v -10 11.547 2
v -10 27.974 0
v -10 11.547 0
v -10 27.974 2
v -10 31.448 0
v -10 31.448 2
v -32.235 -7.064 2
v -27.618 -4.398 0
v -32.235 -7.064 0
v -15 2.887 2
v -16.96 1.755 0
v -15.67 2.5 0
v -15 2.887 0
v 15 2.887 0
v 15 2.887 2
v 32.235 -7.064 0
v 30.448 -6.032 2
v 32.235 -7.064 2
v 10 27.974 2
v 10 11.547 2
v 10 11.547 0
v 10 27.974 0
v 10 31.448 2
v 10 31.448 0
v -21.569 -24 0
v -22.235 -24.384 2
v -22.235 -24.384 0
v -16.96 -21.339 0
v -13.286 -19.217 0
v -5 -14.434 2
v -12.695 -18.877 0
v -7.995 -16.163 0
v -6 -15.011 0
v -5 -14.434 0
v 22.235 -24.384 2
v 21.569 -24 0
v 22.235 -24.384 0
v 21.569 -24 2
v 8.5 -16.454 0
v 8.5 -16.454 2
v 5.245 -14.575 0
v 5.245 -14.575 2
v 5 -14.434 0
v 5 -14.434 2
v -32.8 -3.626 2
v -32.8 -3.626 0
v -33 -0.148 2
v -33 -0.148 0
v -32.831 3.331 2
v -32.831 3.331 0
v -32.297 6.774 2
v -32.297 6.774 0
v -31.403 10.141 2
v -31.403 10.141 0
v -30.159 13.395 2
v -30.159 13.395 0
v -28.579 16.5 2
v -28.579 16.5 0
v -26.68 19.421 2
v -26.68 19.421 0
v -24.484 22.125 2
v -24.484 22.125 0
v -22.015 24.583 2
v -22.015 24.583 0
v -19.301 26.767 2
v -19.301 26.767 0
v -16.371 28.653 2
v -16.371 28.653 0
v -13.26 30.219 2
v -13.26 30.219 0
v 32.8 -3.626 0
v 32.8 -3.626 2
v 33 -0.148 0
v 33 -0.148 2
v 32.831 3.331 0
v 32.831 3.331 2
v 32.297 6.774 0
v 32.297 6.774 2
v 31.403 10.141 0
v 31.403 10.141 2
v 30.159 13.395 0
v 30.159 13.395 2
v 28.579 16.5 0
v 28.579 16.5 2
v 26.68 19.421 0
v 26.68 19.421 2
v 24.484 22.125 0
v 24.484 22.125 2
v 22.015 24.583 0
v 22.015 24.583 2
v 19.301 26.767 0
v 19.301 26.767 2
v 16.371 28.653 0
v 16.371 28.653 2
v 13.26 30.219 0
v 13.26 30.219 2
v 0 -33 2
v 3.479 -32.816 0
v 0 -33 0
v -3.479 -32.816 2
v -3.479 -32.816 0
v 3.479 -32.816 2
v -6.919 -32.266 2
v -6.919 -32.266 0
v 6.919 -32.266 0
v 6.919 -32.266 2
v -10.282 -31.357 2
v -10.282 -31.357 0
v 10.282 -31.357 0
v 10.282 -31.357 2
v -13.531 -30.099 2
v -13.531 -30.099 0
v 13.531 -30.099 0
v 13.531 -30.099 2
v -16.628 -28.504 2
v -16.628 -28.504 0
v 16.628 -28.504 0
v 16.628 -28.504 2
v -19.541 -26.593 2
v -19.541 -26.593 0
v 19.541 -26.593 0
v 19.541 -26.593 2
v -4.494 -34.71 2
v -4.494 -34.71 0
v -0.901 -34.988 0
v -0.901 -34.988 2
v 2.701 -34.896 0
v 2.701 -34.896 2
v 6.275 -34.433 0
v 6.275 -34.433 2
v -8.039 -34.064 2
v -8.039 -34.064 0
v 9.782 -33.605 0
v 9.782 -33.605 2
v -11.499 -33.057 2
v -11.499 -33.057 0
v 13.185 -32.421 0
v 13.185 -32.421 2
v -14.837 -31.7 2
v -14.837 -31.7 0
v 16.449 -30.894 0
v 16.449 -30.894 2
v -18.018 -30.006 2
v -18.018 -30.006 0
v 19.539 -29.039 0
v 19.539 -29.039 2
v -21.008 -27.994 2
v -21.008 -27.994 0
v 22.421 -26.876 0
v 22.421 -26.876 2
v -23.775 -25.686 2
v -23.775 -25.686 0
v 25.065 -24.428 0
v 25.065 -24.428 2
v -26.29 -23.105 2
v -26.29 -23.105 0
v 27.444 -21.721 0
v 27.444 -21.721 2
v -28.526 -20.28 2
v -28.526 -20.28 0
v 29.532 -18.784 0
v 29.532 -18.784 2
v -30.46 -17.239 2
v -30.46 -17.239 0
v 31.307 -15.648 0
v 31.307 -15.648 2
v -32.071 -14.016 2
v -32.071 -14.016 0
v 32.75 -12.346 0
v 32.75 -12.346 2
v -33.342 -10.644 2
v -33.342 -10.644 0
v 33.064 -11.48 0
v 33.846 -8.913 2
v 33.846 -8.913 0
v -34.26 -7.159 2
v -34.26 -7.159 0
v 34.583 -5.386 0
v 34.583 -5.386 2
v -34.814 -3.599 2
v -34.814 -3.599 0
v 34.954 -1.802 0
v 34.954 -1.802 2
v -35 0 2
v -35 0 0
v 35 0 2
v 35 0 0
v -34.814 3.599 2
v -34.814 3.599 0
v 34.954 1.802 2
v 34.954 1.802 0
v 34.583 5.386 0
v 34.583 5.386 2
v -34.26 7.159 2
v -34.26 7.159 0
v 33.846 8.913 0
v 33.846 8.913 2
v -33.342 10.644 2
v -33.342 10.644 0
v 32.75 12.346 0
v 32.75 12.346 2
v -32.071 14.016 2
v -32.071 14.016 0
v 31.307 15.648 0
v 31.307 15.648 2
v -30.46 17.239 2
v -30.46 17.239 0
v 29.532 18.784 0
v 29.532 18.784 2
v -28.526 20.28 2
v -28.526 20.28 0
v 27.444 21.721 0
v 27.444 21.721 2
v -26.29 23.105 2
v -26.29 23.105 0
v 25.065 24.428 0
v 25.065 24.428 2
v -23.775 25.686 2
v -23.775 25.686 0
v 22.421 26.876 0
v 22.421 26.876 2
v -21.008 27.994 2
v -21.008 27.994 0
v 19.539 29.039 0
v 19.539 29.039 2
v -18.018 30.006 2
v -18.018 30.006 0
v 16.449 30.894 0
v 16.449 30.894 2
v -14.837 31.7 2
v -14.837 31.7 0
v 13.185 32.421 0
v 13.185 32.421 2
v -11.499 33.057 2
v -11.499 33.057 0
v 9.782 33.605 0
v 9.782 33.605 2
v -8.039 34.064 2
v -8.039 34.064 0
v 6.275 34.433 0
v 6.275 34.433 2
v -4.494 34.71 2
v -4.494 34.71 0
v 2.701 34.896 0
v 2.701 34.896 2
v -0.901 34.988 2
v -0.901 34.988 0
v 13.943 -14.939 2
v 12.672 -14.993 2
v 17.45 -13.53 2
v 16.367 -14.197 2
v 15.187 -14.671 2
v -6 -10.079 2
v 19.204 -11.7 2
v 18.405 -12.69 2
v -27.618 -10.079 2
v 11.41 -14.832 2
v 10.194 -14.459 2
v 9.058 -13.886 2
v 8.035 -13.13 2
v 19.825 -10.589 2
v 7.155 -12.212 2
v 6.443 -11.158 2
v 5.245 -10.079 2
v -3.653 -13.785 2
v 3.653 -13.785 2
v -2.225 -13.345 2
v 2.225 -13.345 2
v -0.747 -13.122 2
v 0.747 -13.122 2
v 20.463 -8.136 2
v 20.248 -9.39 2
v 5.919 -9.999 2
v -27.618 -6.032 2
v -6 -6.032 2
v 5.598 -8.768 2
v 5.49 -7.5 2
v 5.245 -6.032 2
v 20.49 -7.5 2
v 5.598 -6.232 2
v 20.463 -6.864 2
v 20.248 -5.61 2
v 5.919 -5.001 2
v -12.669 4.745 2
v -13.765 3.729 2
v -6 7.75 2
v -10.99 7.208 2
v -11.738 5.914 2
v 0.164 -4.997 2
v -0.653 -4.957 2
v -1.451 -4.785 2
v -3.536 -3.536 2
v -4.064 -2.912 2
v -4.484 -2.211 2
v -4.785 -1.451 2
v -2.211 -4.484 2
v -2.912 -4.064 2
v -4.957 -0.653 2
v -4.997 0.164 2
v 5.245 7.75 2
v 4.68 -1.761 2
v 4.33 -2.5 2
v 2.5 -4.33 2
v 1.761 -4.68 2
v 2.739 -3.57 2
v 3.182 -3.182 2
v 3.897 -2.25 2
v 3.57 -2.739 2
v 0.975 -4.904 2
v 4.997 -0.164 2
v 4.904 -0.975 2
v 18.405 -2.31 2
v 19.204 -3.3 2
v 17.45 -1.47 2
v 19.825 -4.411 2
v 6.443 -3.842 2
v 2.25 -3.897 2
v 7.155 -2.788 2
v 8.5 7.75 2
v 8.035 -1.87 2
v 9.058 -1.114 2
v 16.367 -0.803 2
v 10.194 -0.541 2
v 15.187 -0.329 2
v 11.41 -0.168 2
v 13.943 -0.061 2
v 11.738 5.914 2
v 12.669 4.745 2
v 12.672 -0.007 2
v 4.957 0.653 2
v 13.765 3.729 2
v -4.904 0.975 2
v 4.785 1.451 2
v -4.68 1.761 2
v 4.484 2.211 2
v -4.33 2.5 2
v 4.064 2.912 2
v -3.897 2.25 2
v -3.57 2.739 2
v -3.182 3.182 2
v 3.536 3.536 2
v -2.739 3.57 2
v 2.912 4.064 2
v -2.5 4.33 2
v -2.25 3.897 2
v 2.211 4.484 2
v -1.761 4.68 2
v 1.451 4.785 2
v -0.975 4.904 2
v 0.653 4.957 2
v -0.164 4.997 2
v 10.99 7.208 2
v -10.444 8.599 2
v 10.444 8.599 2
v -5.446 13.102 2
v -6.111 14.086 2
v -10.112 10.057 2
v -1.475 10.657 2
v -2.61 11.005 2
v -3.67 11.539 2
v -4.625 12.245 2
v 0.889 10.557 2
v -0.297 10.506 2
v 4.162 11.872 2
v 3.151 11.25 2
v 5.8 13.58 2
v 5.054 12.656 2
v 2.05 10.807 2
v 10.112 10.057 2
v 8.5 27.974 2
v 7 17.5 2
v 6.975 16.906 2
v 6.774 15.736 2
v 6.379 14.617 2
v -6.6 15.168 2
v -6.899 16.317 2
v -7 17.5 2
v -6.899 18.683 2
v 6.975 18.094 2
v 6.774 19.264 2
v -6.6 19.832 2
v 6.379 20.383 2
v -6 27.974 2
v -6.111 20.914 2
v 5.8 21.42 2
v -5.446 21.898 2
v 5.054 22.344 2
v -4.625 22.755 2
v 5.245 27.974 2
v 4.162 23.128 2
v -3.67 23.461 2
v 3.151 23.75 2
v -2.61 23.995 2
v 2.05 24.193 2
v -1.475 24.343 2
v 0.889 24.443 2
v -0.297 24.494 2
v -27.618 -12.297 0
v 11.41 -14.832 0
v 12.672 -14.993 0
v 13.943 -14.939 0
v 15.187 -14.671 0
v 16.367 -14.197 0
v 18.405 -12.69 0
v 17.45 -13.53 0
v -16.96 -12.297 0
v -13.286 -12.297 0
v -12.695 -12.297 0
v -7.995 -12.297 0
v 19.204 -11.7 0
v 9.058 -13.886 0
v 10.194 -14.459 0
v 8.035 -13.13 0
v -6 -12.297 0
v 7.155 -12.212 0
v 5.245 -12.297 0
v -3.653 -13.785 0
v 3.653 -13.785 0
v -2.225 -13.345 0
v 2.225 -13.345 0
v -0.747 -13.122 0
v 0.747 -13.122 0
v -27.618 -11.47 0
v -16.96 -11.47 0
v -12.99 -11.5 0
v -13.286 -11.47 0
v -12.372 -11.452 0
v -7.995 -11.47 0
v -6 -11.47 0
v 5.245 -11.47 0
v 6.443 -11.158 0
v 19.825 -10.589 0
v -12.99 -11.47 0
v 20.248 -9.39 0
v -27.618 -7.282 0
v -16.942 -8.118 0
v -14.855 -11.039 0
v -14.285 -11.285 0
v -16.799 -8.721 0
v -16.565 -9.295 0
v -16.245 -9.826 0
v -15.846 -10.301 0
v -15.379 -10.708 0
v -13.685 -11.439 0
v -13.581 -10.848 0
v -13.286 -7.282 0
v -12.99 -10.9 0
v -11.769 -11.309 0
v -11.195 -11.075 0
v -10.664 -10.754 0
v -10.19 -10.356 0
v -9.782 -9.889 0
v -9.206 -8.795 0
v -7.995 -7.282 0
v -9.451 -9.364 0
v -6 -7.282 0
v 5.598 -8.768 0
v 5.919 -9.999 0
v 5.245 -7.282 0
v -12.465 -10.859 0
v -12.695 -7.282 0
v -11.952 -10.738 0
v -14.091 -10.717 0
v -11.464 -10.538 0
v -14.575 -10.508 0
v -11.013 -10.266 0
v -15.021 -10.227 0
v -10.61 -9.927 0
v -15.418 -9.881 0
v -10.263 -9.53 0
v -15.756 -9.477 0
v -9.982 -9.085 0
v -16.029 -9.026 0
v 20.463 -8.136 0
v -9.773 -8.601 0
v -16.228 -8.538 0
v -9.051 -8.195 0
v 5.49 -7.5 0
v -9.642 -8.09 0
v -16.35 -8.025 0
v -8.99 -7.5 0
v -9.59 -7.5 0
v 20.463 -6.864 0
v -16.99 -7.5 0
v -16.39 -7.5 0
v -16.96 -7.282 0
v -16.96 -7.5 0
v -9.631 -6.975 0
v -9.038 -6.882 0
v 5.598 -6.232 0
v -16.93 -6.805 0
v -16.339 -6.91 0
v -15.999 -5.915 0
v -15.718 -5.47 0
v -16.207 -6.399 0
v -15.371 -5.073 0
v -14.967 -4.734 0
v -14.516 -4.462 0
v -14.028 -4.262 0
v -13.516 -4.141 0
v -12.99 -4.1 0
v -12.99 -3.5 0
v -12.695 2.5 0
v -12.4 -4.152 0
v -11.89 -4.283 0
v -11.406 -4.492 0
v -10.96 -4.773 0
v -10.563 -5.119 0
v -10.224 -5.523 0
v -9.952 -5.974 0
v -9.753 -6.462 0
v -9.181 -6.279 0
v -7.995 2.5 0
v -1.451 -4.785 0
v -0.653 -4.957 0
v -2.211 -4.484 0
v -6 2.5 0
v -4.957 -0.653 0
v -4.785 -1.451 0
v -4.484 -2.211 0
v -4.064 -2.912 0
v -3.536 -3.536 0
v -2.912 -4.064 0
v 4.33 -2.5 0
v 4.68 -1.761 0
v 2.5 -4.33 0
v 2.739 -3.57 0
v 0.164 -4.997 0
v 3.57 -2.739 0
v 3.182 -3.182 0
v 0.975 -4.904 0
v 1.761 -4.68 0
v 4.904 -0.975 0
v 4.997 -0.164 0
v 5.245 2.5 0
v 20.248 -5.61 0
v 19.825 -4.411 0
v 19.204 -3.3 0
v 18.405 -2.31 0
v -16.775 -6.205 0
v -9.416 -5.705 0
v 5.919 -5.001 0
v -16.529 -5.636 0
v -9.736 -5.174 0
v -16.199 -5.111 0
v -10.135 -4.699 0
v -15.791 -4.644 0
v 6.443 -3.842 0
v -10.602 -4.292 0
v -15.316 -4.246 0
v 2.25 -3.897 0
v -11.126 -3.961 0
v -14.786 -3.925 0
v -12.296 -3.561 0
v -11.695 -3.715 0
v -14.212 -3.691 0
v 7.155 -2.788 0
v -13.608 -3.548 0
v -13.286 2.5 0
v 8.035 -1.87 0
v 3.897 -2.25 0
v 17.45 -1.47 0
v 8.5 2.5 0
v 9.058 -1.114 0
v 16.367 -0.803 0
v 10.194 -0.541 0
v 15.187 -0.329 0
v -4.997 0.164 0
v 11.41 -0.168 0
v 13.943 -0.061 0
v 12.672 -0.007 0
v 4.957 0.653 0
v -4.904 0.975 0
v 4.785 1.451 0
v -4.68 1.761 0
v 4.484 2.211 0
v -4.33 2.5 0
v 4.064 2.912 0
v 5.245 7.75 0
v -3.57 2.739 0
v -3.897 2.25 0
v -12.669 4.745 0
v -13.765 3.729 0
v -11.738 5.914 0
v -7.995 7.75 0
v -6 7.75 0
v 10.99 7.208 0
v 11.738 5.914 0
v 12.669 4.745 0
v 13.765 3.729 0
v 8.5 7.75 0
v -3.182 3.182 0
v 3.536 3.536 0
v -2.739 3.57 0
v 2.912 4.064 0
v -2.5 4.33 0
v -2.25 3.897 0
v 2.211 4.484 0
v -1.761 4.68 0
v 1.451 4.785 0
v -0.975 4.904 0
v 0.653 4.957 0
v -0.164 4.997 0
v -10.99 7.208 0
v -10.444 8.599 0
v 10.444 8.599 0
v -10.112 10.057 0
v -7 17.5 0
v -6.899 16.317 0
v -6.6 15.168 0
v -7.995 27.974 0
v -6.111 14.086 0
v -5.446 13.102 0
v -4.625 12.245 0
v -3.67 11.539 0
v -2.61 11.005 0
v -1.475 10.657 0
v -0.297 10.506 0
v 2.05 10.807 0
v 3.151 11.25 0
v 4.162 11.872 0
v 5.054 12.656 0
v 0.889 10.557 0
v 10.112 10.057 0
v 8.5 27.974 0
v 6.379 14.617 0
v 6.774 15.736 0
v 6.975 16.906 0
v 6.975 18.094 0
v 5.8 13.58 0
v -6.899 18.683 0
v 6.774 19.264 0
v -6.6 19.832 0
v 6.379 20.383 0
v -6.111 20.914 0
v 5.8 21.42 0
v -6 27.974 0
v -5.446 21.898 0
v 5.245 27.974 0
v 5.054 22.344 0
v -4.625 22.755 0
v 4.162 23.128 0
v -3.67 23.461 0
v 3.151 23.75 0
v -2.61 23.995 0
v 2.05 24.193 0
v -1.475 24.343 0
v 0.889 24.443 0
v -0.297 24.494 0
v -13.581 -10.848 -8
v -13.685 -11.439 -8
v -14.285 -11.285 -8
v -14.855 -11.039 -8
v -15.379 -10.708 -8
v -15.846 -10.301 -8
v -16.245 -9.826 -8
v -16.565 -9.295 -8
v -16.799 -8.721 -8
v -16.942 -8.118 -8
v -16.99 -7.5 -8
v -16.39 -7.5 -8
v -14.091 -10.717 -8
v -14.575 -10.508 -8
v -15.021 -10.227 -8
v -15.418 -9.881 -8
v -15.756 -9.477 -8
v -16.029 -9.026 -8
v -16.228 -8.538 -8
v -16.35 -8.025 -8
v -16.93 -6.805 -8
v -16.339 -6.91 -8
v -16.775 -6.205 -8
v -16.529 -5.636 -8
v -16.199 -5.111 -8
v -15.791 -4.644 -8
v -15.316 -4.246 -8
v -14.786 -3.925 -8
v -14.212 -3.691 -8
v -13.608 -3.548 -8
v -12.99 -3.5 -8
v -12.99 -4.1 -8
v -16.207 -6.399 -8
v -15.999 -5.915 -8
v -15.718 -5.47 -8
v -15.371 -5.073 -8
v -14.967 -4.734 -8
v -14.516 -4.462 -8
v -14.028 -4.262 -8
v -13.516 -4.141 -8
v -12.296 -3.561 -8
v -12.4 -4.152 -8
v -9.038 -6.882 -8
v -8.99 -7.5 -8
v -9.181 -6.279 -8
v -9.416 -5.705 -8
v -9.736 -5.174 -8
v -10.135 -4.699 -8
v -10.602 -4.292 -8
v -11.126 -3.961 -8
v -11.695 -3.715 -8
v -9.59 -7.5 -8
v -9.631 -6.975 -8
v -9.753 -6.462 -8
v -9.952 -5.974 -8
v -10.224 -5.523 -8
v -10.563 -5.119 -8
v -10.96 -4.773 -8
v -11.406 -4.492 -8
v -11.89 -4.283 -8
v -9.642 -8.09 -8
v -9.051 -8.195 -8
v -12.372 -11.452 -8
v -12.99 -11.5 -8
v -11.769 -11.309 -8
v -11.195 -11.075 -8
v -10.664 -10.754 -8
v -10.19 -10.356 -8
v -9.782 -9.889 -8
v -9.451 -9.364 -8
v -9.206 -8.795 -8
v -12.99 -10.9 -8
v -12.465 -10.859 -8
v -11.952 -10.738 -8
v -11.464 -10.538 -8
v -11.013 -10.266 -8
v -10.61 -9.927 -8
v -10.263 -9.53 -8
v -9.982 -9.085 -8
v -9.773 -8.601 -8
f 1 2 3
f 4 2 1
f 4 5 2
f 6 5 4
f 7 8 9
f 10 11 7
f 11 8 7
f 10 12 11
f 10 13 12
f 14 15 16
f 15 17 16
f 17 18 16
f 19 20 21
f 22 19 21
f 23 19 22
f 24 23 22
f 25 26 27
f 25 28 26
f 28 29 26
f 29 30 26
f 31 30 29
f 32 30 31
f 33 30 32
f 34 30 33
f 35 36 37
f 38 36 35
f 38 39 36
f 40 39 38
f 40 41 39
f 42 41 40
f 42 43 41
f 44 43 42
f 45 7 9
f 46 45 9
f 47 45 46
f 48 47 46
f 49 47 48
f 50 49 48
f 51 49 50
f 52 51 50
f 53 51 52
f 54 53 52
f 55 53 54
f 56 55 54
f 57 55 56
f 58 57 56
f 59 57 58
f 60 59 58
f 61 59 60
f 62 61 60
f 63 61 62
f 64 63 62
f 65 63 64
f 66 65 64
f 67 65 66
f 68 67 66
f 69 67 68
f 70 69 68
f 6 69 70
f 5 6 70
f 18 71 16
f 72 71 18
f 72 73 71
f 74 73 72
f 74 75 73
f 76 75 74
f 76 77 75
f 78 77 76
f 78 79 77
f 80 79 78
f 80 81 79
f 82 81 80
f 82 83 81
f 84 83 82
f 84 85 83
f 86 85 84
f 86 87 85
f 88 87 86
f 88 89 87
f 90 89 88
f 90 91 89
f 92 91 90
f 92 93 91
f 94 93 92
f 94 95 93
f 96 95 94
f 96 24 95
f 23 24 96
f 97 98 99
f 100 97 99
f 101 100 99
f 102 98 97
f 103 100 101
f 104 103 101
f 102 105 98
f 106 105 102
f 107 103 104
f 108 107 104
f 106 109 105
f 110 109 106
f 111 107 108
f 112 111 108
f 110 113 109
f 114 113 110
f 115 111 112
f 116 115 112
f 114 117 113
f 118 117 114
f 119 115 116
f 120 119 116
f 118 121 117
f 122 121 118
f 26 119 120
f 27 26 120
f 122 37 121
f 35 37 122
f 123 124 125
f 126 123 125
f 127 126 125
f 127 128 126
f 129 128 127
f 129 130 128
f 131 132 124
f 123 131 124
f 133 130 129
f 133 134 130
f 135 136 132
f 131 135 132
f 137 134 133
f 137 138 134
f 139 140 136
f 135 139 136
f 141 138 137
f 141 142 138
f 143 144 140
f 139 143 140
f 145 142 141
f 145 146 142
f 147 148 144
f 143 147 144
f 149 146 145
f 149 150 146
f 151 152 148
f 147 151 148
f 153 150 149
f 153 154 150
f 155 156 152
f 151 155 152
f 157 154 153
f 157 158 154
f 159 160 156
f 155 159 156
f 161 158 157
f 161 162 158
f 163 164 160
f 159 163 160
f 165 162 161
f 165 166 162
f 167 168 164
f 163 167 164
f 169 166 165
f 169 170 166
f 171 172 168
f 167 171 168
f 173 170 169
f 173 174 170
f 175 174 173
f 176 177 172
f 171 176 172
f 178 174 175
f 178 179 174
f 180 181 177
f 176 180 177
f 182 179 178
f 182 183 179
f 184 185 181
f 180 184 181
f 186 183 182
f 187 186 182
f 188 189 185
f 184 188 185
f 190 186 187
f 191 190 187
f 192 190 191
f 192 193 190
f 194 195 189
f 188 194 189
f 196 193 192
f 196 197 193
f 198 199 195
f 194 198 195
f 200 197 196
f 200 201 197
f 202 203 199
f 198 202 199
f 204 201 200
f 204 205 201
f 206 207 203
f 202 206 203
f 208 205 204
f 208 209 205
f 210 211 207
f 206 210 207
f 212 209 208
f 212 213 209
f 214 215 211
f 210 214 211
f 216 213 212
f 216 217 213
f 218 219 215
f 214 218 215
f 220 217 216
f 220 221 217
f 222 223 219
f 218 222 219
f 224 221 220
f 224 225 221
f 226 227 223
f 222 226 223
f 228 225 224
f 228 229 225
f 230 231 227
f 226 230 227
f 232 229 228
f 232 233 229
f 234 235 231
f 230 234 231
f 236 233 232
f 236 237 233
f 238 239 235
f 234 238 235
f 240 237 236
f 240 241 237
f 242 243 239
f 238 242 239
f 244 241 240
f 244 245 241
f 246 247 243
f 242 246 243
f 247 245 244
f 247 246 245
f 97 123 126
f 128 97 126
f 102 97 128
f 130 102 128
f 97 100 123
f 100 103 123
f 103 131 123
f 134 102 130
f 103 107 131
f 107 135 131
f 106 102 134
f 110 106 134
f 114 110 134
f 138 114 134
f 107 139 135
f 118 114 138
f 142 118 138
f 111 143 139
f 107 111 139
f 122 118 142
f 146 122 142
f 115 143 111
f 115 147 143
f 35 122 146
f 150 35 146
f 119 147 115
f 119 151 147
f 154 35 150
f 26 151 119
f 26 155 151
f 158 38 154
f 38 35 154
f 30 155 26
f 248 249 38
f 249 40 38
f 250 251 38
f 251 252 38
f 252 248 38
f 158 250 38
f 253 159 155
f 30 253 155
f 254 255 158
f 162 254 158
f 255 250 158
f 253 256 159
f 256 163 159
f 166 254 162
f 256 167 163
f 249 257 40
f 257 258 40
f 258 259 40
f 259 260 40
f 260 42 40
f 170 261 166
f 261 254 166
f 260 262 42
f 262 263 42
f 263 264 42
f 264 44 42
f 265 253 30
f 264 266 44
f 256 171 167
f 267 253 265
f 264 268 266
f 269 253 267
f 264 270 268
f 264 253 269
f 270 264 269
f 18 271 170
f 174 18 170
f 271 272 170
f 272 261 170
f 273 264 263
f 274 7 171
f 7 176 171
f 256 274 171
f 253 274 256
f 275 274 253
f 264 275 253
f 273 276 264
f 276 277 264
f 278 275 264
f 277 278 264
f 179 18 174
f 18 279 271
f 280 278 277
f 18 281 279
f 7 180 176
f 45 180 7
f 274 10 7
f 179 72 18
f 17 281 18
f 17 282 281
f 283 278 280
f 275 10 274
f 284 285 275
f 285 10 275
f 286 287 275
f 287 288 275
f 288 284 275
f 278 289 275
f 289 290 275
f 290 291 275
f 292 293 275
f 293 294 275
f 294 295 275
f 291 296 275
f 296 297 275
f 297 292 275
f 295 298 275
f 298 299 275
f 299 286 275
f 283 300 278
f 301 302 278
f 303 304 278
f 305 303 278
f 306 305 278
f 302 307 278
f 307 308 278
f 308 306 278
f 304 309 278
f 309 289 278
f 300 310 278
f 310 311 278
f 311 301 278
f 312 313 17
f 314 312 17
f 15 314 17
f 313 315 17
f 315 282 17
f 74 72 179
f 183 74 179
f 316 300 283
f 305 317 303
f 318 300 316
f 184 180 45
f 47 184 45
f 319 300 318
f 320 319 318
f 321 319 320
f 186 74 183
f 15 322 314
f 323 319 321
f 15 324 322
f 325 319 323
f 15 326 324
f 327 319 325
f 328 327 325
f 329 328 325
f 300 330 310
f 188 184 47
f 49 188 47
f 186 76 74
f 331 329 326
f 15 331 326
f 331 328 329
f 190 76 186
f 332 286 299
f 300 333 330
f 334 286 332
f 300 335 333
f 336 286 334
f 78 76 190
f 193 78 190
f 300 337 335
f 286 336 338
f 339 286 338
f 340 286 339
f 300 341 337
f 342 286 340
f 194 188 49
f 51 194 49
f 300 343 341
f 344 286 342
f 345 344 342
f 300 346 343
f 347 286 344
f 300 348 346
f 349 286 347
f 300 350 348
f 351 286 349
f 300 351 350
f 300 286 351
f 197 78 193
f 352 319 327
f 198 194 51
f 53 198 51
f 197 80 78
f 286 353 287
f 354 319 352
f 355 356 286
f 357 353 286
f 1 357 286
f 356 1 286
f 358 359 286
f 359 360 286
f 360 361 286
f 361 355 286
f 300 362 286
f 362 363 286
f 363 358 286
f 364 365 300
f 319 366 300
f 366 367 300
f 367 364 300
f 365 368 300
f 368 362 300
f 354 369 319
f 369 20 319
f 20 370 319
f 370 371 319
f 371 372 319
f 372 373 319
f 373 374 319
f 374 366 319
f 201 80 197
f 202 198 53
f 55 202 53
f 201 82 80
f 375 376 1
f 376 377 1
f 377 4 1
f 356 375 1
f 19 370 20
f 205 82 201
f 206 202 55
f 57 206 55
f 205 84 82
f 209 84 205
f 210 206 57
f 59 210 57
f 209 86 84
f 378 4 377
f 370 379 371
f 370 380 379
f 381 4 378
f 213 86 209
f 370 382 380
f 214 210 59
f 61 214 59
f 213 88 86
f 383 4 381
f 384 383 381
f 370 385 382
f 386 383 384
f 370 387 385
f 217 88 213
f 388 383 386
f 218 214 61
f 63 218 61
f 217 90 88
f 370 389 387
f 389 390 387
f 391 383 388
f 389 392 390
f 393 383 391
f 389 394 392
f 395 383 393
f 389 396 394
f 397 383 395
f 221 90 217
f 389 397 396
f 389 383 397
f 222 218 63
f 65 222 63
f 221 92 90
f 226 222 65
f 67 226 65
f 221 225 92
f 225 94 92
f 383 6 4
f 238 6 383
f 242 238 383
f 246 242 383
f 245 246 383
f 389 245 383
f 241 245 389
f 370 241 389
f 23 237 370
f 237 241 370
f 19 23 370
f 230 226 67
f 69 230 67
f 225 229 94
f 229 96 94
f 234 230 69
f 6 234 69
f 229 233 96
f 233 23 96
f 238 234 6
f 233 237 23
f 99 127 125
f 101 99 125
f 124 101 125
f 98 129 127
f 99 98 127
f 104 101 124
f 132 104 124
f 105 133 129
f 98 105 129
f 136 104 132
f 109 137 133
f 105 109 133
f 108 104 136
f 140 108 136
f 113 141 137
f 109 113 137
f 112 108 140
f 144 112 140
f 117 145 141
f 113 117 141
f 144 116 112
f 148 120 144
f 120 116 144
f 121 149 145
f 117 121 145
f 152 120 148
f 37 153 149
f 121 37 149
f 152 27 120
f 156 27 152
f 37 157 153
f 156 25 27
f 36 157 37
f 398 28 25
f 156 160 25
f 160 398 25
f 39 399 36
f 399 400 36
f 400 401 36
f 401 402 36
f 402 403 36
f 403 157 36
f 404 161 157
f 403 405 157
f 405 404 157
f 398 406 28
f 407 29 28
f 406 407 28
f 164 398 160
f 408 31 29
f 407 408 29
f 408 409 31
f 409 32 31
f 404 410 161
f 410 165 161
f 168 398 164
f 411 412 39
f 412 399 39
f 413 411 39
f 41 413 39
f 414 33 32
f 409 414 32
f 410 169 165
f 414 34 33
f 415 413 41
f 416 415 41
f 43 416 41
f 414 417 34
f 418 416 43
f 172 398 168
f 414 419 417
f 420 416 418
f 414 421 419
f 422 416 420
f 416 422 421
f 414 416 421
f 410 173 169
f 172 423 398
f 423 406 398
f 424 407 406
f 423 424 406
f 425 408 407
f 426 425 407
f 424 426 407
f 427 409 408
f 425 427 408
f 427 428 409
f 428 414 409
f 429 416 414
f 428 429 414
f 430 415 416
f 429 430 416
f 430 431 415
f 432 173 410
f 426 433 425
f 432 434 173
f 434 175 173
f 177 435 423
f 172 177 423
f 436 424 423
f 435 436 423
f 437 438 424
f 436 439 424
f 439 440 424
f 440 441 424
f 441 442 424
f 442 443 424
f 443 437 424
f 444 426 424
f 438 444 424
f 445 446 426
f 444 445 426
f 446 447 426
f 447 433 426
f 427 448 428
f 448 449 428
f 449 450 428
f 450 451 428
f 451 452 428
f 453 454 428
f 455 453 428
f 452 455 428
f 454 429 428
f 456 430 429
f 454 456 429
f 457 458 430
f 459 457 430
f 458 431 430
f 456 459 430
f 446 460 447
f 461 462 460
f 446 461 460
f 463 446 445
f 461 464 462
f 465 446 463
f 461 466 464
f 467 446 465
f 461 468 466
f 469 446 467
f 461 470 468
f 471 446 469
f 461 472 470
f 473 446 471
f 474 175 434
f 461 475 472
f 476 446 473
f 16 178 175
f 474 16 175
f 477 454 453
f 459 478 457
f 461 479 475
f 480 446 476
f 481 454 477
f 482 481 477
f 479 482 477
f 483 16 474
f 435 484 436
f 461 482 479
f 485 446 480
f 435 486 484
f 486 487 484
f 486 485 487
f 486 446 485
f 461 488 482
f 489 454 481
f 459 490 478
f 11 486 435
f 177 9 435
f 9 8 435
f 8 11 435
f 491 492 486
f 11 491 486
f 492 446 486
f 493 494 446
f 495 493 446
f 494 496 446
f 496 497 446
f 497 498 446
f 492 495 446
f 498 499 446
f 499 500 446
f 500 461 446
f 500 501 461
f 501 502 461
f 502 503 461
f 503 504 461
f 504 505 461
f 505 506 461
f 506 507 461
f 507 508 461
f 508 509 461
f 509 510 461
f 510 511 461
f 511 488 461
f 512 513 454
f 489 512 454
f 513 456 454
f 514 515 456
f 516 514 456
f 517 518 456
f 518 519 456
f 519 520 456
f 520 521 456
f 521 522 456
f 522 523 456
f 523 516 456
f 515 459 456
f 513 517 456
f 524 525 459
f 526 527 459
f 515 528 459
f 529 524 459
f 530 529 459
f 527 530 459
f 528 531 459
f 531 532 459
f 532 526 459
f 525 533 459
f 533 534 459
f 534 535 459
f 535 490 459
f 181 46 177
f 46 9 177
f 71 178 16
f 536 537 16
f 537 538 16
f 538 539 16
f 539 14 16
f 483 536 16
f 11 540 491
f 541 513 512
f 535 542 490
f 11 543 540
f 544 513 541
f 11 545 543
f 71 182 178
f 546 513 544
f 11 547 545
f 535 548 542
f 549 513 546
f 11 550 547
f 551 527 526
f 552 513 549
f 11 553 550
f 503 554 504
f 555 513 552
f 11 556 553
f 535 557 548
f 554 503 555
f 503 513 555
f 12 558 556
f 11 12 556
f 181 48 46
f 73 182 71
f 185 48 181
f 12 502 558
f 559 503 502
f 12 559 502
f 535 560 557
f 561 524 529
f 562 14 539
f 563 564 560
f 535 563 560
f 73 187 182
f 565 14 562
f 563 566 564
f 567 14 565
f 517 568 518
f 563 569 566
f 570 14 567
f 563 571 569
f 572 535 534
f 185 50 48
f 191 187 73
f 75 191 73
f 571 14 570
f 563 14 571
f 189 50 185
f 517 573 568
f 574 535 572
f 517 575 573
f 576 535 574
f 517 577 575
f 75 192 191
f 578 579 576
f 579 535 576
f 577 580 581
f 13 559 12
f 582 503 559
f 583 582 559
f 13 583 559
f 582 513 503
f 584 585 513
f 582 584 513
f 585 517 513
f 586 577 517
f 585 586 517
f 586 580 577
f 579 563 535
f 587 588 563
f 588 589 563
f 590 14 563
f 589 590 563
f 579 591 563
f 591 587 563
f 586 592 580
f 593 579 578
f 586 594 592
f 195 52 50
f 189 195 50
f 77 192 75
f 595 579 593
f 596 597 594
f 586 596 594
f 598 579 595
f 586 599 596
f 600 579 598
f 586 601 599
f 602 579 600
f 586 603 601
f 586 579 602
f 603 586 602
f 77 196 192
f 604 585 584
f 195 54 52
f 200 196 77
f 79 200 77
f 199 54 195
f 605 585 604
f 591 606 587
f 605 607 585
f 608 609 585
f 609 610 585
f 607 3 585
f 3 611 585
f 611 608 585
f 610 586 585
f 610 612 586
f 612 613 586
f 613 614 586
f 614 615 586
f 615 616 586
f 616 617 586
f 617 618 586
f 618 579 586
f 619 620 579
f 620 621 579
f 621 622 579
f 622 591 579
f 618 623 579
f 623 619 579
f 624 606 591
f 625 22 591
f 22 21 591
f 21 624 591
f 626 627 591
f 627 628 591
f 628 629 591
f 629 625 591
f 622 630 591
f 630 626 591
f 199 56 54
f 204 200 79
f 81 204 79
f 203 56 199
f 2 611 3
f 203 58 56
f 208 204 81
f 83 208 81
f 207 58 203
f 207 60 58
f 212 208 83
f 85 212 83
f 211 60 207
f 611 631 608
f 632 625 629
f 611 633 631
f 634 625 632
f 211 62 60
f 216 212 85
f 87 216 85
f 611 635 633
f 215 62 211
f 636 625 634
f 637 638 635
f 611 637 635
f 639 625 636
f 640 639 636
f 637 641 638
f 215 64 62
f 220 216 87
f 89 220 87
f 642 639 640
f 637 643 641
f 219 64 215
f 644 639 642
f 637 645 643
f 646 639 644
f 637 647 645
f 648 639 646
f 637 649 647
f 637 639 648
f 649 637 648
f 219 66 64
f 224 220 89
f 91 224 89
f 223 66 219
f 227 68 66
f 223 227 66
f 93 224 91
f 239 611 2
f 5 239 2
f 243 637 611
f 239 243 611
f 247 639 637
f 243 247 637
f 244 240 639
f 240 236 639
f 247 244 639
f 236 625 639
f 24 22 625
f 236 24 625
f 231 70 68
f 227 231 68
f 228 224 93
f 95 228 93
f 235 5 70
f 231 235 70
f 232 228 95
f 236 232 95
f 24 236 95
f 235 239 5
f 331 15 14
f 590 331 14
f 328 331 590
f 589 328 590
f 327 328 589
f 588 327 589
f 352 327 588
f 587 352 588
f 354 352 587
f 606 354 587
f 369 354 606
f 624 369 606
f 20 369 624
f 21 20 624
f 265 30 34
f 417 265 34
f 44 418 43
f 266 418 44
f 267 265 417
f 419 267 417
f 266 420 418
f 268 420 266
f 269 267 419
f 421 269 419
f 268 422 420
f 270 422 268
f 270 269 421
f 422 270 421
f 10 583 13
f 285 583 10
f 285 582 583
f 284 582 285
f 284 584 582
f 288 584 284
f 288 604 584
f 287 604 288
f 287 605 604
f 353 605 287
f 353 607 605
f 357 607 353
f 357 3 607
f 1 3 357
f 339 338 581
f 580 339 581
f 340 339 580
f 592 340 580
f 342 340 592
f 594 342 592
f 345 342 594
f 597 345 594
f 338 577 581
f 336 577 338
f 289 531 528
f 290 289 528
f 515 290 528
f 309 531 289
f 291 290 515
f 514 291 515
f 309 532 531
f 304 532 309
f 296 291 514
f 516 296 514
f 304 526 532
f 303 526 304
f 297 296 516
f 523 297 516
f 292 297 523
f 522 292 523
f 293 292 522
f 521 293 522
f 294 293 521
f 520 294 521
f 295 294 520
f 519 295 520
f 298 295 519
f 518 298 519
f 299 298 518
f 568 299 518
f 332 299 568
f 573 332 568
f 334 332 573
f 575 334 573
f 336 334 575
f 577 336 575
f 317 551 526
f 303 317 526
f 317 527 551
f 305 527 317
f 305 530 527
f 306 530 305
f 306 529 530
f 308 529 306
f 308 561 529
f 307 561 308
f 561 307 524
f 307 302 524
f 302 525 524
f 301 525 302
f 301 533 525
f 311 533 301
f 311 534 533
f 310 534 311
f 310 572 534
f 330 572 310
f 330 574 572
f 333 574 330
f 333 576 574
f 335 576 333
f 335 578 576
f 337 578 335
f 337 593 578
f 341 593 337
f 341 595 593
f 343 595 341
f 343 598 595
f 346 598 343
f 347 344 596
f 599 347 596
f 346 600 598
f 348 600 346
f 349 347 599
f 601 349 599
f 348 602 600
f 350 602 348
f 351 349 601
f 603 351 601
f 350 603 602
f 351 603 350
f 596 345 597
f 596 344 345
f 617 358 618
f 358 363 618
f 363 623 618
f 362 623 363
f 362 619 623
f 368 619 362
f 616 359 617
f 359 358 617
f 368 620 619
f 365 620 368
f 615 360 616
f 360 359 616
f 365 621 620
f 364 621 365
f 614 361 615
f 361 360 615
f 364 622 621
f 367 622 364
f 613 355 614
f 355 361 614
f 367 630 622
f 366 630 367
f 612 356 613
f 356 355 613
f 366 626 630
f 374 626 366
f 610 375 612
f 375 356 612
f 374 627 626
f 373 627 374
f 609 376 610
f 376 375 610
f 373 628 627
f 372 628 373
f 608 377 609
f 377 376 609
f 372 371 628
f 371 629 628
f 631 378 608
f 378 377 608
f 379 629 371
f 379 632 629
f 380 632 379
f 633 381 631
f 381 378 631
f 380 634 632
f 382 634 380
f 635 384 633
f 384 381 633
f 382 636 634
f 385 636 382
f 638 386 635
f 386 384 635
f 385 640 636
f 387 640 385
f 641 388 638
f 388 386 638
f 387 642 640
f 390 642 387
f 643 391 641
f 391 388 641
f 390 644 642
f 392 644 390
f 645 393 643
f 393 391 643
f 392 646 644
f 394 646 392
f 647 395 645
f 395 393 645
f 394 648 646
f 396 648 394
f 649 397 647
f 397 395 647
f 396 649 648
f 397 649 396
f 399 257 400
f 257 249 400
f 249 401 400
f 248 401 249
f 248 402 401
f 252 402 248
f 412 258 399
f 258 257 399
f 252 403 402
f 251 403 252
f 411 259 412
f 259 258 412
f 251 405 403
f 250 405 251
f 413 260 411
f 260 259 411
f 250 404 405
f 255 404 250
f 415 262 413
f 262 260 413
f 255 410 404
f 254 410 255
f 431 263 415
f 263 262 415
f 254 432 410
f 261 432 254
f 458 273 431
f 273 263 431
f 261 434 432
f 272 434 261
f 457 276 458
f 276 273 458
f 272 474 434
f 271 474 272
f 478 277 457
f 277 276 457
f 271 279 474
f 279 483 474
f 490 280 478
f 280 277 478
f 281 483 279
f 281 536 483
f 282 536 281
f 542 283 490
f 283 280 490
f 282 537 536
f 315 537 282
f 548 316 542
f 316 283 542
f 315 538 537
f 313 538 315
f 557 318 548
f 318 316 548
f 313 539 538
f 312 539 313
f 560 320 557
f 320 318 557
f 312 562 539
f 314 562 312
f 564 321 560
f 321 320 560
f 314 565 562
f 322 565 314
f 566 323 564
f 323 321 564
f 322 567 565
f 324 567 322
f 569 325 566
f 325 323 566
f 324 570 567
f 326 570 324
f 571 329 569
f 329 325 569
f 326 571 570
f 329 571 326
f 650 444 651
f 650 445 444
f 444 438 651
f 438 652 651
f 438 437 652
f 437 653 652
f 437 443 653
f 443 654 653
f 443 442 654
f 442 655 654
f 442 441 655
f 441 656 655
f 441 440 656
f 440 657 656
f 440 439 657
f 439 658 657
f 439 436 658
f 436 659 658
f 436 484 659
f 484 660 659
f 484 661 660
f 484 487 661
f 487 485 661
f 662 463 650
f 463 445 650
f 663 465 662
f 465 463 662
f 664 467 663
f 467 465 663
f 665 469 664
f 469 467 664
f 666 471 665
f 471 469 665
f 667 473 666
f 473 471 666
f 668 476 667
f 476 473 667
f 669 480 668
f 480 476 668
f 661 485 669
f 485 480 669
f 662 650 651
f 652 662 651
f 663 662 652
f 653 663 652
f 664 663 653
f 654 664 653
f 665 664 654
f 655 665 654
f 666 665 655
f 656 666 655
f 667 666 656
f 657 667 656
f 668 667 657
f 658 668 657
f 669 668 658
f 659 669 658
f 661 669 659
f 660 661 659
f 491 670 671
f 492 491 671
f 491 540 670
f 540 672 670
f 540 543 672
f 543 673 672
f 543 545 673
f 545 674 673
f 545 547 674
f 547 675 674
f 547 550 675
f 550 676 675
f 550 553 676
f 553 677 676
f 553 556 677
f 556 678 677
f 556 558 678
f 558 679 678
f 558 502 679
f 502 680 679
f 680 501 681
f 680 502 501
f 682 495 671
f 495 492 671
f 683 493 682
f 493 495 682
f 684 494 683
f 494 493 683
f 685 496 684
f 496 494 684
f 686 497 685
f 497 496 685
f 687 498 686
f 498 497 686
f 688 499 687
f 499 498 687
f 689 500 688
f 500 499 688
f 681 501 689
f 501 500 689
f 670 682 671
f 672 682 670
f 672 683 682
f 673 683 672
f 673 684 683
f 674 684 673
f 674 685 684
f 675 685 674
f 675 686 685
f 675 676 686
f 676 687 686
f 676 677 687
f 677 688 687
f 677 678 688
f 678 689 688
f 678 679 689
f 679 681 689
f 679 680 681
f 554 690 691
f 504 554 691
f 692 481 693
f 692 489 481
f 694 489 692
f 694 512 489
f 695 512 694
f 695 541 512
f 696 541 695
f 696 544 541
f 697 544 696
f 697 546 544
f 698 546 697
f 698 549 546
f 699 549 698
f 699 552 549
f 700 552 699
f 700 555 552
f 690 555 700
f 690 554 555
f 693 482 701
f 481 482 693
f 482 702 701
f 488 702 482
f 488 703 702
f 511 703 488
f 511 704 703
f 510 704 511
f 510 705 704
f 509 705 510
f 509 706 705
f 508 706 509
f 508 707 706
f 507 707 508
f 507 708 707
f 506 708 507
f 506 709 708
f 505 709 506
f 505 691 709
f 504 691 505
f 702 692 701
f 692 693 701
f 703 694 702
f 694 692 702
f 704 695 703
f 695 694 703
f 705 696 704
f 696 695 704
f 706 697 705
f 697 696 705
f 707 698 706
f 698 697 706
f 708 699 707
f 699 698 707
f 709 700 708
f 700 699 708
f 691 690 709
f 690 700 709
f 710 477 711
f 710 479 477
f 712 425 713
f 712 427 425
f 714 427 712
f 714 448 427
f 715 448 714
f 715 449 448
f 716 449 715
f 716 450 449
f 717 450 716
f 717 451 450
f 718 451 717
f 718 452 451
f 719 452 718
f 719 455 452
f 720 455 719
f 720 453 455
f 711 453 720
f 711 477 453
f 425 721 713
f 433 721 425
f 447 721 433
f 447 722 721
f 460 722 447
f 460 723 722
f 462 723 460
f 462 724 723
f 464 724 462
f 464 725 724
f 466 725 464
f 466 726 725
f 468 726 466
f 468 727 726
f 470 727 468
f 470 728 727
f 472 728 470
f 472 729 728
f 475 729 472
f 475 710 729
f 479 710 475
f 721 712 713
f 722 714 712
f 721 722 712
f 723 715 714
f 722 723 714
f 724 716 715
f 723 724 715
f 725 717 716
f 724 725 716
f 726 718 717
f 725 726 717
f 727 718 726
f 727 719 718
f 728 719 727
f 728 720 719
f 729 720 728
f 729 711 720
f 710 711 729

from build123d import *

# Parameters (mm, degrees)
SKETCH1_R           = 35
BOSS_EXTRUDE1_DEPTH = 2
FILLET1_R           = 10
CUT_EXTRUDE2_REACH  = 51.538
SKETCH2_R           = 4.5
CUT_EXTRUDE3_REACH  = 51.538
SKETCH3_R           = 7.5
SKETCH3_R_2         = 7
BOSS_EXTRUDE2_DEPTH = 8


with BuildPart() as part:
    # Sketch1 → Boss-Extrude1 (new body)
    with BuildSketch(Plane.XY):
        Circle(SKETCH1_R)
        with BuildLine():
            Line((-10, 31.448370387), (-10, 5.773502692))
            Line((-10, 5.773502692), (-32.235087663, -7.063931156))
            ThreePointArc((-32.235087663, -7.063931156), (-28.578838325, 16.5), (-10, 31.448370387))
        make_face(mode=Mode.SUBTRACT)
        with BuildLine():
            Line((-22.235087663, -24.384439231), (0, -11.547005384))
            Line((0, -11.547005384), (22.235087663, -24.384439231))
            ThreePointArc((22.235087663, -24.384439231), (0, -33), (-22.235087663, -24.384439231))
        make_face(mode=Mode.SUBTRACT)
        with BuildLine():
            Line((32.235087663, -7.063931156), (10, 5.773502692))
            Line((10, 5.773502692), (10, 31.448370387))
            ThreePointArc((10, 31.448370387), (28.578838325, 16.5), (32.235087663, -7.063931156))
        make_face(mode=Mode.SUBTRACT)
    extrude(amount=BOSS_EXTRUDE1_DEPTH)

    # Fillet1
    fillet1_edges = [part.edges().sort_by_distance(p)[0] for p in [
        (-10, 5.773502692, 1),
        (10, 5.773502692, 1),
        (0, -11.547005384, 1),
    ]]
    fillet(fillet1_edges, radius=FILLET1_R)

    # Sketch2 → Cut-Extrude2 (cut, up to next)
    with BuildSketch(Plane(origin=(0, 0, 0), x_dir=(-1, 0, 0), z_dir=(0, 0, -1)), mode=Mode.PRIVATE) as cut_extrude2_sk1:
        Circle(SKETCH2_R)
    cut_extrude2_tool1 = extrude(cut_extrude2_sk1.sketch, amount=-CUT_EXTRUDE2_REACH, mode=Mode.PRIVATE) & part.part
    # Sketch2 → Cut-Extrude2 (cut, up to next)
    with BuildSketch(Plane(origin=(0, 0, 0), x_dir=(-1, 0, 0), z_dir=(0, 0, -1)), mode=Mode.PRIVATE) as cut_extrude2_sk2:
        with BuildLine():
            ThreePointArc((5, 0), (4.829629131, 1.294095226), (4.330127019, 2.5))
            Line((4.330127019, 2.5), (3.897114317, 2.25))
            ThreePointArc((3.897114317, 2.25), (4.346666218, 1.164685703), (4.5, 0))
            ThreePointArc((4.5, 0), (2.25, -3.897114317), (-2.25, -3.897114317))
            Line((-2.25, -3.897114317), (-2.5, -4.330127019))
            ThreePointArc((-2.5, -4.330127019), (2.5, -4.330127019), (5, 0))
        make_face()
    cut_extrude2_tool2 = extrude(cut_extrude2_sk2.sketch, amount=-CUT_EXTRUDE2_REACH, mode=Mode.PRIVATE) & part.part
    # Sketch2 → Cut-Extrude2 (cut, up to next)
    with BuildSketch(Plane(origin=(0, 0, 0), x_dir=(-1, 0, 0), z_dir=(0, 0, -1)), mode=Mode.PRIVATE) as cut_extrude2_sk3:
        with BuildLine():
            Line((2.25, 3.897114317), (2.5, 4.330127019))
            ThreePointArc((2.5, 4.330127019), (-3.535533906, 3.535533906), (-4.330127019, -2.5))
            Line((-4.330127019, -2.5), (-3.897114317, -2.25))
            ThreePointArc((-3.897114317, -2.25), (-3.181980515, 3.181980515), (2.25, 3.897114317))
        make_face()
    cut_extrude2_tool3 = extrude(cut_extrude2_sk3.sketch, amount=-CUT_EXTRUDE2_REACH, mode=Mode.PRIVATE) & part.part
    add(cut_extrude2_tool1.solids().sort_by_distance((0, 0, 0))[0], mode=Mode.SUBTRACT)
    add(cut_extrude2_tool2.solids().sort_by_distance((-2.446967, -4.238271, 0))[0], mode=Mode.SUBTRACT)
    add(cut_extrude2_tool3.solids().sort_by_distance((4.166654, -2.283144, 0))[0], mode=Mode.SUBTRACT)

    # Sketch3 → Cut-Extrude3 (cut, up to next)
    with BuildSketch(Plane(origin=(0, 0, 0), x_dir=(-1, 0, 0), z_dir=(0, 0, -1)), mode=Mode.PRIVATE) as cut_extrude3_sk1:
        with Locations((-12.990381057, -7.5)):
            Circle(SKETCH3_R)
    cut_extrude3_tool1 = extrude(cut_extrude3_sk1.sketch, amount=-CUT_EXTRUDE3_REACH, mode=Mode.PRIVATE) & part.part
    # Sketch3 → Cut-Extrude3 (cut, up to next)
    with BuildSketch(Plane(origin=(0, 0, 0), x_dir=(-1, 0, 0), z_dir=(0, 0, -1)), mode=Mode.PRIVATE) as cut_extrude3_sk2:
        with Locations((0, 17.5)):
            Circle(SKETCH3_R_2)
    cut_extrude3_tool2 = extrude(cut_extrude3_sk2.sketch, amount=-CUT_EXTRUDE3_REACH, mode=Mode.PRIVATE) & part.part
    add(cut_extrude3_tool1.solids().sort_by_distance((12.990381, -7.5, 0))[0], mode=Mode.SUBTRACT)
    add(cut_extrude3_tool2.solids().sort_by_distance((0, 17.5, 0))[0], mode=Mode.SUBTRACT)

    # Sketch3<4> → Boss-Extrude2 (add)
    with BuildSketch(Plane(origin=(0, 0, 0), x_dir=(-1, 0, 0), z_dir=(0, 0, -1))):
        with BuildLine():
            ThreePointArc((16.390381057, -7.5), (15.594932163, -9.685477873), (13.580784861, -10.84834636))
            Line((13.580784861, -10.84834636), (13.684973767, -11.439231012))
            ThreePointArc((13.684973767, -11.439231012), (16.054558829, -10.071150439), (16.990381057, -7.5))
            Line((16.990381057, -7.5), (16.390381057, -7.5))
        make_face()
        with BuildLine():
            Line((12.990381057, -3.5), (12.990381057, -4.1))
            ThreePointArc((12.990381057, -4.1), (15.17585893, -4.895448893), (16.338727417, -6.909596196))
            Line((16.338727417, -6.909596196), (16.929612069, -6.805407289))
            ThreePointArc((16.929612069, -6.805407289), (15.561531496, -4.435822228), (12.990381057, -3.5))
        make_face()
        with BuildLine():
            ThreePointArc((9.590381057, -7.5), (10.38582995, -5.314522127), (12.399977253, -4.15165364))
            Line((12.399977253, -4.15165364), (12.295788346, -3.560768988))
            ThreePointArc((12.295788346, -3.560768988), (9.926203284, -4.928849561), (8.990381057, -7.5))
            Line((8.990381057, -7.5), (9.590381057, -7.5))
        make_face()
        with BuildLine():
            ThreePointArc((12.990381057, -10.9), (10.804903184, -10.104551107), (9.642034697, -8.090403804))
            Line((9.642034697, -8.090403804), (9.051150045, -8.194592711))
            ThreePointArc((9.051150045, -8.194592711), (10.419230618, -10.564177772), (12.990381057, -11.5))
            Line((12.990381057, -11.5), (12.990381057, -10.9))
        make_face()
    extrude(amount=BOSS_EXTRUDE2_DEPTH)


solid = part.part
